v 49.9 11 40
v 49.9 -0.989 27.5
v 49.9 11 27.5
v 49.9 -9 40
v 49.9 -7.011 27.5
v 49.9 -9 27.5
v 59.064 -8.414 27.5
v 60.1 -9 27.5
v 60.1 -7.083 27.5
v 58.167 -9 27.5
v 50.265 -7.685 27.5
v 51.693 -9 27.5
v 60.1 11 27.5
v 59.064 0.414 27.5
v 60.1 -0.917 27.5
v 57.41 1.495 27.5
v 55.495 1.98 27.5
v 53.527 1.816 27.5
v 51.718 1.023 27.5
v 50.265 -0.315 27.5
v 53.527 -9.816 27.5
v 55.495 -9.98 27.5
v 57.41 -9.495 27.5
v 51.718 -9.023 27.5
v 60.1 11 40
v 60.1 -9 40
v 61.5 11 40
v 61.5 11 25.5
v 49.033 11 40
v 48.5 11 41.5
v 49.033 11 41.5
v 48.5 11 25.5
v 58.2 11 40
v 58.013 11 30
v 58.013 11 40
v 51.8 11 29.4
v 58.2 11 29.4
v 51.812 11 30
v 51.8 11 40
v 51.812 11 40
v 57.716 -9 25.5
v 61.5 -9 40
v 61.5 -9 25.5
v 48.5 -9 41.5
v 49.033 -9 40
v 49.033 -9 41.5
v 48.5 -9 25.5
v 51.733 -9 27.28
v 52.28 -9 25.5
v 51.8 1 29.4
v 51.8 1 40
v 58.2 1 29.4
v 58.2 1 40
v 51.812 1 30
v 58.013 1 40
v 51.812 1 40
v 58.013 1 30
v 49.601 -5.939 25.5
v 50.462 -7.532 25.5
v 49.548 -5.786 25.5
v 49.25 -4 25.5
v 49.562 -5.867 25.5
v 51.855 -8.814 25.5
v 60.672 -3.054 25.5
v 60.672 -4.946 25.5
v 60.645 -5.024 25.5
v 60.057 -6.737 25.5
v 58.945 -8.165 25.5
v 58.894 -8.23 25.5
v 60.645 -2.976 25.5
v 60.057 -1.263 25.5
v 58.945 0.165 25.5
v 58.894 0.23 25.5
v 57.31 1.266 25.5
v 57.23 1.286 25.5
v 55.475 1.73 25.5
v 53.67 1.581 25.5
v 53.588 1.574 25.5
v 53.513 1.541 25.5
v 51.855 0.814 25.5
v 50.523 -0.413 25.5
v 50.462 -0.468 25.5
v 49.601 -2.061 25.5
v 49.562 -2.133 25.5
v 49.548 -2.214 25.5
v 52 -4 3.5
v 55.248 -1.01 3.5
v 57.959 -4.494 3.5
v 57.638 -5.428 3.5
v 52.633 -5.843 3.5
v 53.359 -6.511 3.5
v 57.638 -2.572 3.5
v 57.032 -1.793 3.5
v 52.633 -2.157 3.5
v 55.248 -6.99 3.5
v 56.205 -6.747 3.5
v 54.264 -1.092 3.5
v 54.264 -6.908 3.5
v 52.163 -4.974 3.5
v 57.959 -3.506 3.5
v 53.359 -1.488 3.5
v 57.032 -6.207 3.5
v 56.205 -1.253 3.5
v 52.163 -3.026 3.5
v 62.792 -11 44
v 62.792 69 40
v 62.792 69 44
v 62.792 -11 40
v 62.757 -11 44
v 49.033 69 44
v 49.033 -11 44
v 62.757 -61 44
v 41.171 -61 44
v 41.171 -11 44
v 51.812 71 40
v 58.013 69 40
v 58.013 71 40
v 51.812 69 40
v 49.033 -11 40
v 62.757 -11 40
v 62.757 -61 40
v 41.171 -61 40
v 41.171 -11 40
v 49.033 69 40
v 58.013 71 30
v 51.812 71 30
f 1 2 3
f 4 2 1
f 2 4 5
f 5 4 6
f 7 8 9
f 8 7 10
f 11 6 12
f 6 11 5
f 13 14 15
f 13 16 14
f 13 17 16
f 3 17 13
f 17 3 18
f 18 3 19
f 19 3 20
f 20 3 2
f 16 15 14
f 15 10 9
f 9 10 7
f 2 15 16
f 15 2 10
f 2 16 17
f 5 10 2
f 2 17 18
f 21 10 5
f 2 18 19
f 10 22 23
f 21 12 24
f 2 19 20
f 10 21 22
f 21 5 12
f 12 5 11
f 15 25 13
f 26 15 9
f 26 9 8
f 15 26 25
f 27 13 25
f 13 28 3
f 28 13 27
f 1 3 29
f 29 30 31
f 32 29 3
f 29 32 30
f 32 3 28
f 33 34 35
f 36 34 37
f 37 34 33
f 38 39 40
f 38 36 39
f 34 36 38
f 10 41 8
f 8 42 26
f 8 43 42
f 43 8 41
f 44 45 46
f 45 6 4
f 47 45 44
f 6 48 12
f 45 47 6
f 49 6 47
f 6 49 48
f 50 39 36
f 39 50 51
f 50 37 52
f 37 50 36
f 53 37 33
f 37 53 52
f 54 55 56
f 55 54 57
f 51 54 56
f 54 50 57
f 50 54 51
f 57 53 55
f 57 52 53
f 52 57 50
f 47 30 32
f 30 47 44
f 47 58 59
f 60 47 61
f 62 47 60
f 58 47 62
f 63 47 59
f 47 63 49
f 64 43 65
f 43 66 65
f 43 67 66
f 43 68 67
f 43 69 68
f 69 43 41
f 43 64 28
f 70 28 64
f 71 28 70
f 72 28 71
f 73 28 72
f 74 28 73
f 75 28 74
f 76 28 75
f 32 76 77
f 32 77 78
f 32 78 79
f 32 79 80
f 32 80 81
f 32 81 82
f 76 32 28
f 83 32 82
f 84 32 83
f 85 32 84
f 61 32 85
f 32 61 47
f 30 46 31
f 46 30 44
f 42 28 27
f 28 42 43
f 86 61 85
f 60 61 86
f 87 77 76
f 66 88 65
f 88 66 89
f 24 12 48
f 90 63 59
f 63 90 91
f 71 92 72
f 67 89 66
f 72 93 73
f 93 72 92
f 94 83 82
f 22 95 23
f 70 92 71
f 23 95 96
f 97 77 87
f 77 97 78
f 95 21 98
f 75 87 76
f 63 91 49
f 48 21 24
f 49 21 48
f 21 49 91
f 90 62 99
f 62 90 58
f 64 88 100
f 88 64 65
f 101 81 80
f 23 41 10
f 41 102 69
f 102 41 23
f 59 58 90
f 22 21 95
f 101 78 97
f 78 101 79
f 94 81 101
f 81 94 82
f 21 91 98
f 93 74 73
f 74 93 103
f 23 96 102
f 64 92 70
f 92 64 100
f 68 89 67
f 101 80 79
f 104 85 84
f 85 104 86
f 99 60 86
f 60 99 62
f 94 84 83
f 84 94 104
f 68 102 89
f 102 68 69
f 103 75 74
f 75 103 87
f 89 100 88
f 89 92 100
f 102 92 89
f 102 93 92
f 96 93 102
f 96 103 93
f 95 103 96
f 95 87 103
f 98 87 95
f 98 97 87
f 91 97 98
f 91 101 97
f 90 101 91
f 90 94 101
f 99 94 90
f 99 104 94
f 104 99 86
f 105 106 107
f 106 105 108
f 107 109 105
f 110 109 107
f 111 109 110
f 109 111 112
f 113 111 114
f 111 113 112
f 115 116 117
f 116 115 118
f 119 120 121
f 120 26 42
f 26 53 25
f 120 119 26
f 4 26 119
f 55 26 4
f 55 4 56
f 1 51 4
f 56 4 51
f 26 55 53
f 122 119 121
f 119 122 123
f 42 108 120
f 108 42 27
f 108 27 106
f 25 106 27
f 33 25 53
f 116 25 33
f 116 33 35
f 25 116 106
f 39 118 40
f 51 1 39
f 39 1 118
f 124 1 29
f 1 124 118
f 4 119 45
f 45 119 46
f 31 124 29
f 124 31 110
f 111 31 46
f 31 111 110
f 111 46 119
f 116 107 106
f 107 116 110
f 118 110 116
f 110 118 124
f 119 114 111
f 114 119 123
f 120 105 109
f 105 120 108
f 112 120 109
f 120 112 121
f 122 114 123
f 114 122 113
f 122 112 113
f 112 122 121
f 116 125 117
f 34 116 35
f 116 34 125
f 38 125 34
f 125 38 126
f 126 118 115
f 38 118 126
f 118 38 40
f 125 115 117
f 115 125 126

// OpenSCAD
// file: irkem_hammerTips_v0.scad
tol = 0.2;
extrWall = 1.7+tol;
extrH = 12.9+tol;//12.6+tol;
extrW = 10+tol;

hammerY = 20;
hammerZ = 24;

module hammerTips(){
translate([0,-5,0]) cylinder(hammerZ,6,3);
difference(){
    translate([-6.5,-10,-14]) cube([13,hammerY,16]);
    union(){uChan();translate([-extrW/2,-hammerY/2,-extrH]) cube([extrW,hammerY/2,extrH]);
}
}
module uChan(){
difference(){
    translate([-extrW/2,-hammerY/2,-extrH]) cube([extrW,hammerY,extrH]);
    translate([-extrW/2+extrWall,-hammerY/2,-extrH-extrWall]) cube([extrW-2*extrWall,hammerY,extrH]);
}
}
}

//hammerTips();
// main file
include <irkem_hammerTips_v0.scad>

xO = -6;
yO = -11;
zO = 40;

kH = 4;
bH = 10;
wL = 50;
bL = 80;
oct = 6.5 * 25.4;
gap = 2;
n_oct = 1;//5;
n_keys = 12 * n_oct;
oset = -1;

sharpFlag = 1;

for (k = [4]){//:1:(n_keys-1)]){
    //
    translate([k*13.75+6.0+xO,12+yO,-12.5+zO]) rotate([0,180,0]) hammerTips();
}

for (k = [0:1:(n_oct-1)]){

//C:
//color("ivory") translate([k*oct+0+xO,0+yO,0+zO]) cube([oct*1/12-gap,bL,kH]);
//color("ivory") translate([k*oct+0+xO,-wL+yO,0+zO]) cube([oct*1/7-gap,wL,kH]);

////C#:
//if (sharpFlag){    
//color("black") translate([k*oct+oct*1/12+xO,gap+yO,0+zO]) cube([oct*1/12-gap,bL,kH+bH]);
//}//

////D:
//color("ivory") translate([k*oct+oct*2/12+xO,0+yO,0+zO]) cube([oct*1/12-gap,bL,kH]);
//color("ivory") translate([k*oct+oct*1/7+xO,-wL+yO,0+zO]) cube([oct*1/7-gap,wL,kH]);//

////D#:
//if (sharpFlag){
//color("black") translate([k*oct+oct*3/12+xO,gap+yO,0+zO]) cube([oct*1/12-gap,bL,kH+bH]);
//}//

////E:
color("ivory") translate([k*oct+oct*4/12+xO,0+yO,0+zO]) cube([2+oct*1/12-gap,bL,kH]);
color("ivory") translate([k*oct+oct*2/7+xO,-wL+yO,0+zO]) cube([oct*1/7-gap,wL,kH]);//

////F:
//color("ivory") difference(){
//    translate([k*oct+oct*3/7+xO,-wL+yO,0+zO]) cube([oct*1/7-gap,wL+bL,kH]);
//    translate([k*oct+oct*6/12-2+xO,0+yO,0+zO]) cube([4+oct*(1/7-1/12)-gap,bL,kH]);
//}
//color("ivory") translate([k*oct+oct*3/7+xO,-wL+yO,0+zO]) cube([oct*1/7-gap,wL,kH]);//

////F#:
//if (sharpFlag){
//color("black") translate([k*oct+oct*6/12+xO,gap+yO,0+zO]) cube([oct*1/12-gap,bL,kH+bH]);
//}//

////G:
//color("ivory") translate([k*oct+oct*7/12+xO,0+yO,0+zO]) cube([oct*1/12-gap,bL,kH]);
//color("ivory") translate([k*oct+oct*4/7+xO,-wL+yO,0+zO]) cube([oct*1/7-gap,wL,kH]);//

////G#:
//if (sharpFlag){
//color("black") translate([k*oct+oct*8/12+xO,gap+yO,0+zO]) cube([oct*1/12-gap,bL,kH+bH]);
//}//

////A:
//color("ivory") translate([k*oct+oct*9/12+xO,0+yO,0+zO]) cube([oct*1/12-gap,bL,kH]);
//color("ivory") translate([k*oct+oct*5/7+xO,-wL+yO,0+zO]) cube([oct*1/7-gap,wL,kH]);//

////A#:
//if (sharpFlag){
//color("black") translate([k*oct+oct*10/12+xO,gap+yO,0+zO]) cube([oct*1/12-gap,bL,kH+bH]);
//}//

////B:
//color("ivory") translate([k*oct+oct*11/12+xO,0+yO,0+zO]) cube([oct*1/12-gap,bL,kH]);
//color("ivory") translate([k*oct+oct*6/7+xO,-wL+yO,0+zO]) cube([oct*1/7-gap,wL,kH]);//

}

for (i = [4]){//,2,4,5,7,9,11]){//[0:1:(n_keys-1)]){
    translate([oset+oct*i/12+(oct*1/12-6.2)/2+xO,2+10+yO,-10+zO]) cube([6.2,bL-10,10]);
}

//if (sharpFlag){
//    for (i = [1,3,6,8,10]){//[0:1:(n_keys-1)]){
//    translate([oset+oct*i/12+(oct*1/12-6.2)/2+xO,2+10+yO,-10+zO]) cube([6.2,bL-10,10]);
//}
//}
